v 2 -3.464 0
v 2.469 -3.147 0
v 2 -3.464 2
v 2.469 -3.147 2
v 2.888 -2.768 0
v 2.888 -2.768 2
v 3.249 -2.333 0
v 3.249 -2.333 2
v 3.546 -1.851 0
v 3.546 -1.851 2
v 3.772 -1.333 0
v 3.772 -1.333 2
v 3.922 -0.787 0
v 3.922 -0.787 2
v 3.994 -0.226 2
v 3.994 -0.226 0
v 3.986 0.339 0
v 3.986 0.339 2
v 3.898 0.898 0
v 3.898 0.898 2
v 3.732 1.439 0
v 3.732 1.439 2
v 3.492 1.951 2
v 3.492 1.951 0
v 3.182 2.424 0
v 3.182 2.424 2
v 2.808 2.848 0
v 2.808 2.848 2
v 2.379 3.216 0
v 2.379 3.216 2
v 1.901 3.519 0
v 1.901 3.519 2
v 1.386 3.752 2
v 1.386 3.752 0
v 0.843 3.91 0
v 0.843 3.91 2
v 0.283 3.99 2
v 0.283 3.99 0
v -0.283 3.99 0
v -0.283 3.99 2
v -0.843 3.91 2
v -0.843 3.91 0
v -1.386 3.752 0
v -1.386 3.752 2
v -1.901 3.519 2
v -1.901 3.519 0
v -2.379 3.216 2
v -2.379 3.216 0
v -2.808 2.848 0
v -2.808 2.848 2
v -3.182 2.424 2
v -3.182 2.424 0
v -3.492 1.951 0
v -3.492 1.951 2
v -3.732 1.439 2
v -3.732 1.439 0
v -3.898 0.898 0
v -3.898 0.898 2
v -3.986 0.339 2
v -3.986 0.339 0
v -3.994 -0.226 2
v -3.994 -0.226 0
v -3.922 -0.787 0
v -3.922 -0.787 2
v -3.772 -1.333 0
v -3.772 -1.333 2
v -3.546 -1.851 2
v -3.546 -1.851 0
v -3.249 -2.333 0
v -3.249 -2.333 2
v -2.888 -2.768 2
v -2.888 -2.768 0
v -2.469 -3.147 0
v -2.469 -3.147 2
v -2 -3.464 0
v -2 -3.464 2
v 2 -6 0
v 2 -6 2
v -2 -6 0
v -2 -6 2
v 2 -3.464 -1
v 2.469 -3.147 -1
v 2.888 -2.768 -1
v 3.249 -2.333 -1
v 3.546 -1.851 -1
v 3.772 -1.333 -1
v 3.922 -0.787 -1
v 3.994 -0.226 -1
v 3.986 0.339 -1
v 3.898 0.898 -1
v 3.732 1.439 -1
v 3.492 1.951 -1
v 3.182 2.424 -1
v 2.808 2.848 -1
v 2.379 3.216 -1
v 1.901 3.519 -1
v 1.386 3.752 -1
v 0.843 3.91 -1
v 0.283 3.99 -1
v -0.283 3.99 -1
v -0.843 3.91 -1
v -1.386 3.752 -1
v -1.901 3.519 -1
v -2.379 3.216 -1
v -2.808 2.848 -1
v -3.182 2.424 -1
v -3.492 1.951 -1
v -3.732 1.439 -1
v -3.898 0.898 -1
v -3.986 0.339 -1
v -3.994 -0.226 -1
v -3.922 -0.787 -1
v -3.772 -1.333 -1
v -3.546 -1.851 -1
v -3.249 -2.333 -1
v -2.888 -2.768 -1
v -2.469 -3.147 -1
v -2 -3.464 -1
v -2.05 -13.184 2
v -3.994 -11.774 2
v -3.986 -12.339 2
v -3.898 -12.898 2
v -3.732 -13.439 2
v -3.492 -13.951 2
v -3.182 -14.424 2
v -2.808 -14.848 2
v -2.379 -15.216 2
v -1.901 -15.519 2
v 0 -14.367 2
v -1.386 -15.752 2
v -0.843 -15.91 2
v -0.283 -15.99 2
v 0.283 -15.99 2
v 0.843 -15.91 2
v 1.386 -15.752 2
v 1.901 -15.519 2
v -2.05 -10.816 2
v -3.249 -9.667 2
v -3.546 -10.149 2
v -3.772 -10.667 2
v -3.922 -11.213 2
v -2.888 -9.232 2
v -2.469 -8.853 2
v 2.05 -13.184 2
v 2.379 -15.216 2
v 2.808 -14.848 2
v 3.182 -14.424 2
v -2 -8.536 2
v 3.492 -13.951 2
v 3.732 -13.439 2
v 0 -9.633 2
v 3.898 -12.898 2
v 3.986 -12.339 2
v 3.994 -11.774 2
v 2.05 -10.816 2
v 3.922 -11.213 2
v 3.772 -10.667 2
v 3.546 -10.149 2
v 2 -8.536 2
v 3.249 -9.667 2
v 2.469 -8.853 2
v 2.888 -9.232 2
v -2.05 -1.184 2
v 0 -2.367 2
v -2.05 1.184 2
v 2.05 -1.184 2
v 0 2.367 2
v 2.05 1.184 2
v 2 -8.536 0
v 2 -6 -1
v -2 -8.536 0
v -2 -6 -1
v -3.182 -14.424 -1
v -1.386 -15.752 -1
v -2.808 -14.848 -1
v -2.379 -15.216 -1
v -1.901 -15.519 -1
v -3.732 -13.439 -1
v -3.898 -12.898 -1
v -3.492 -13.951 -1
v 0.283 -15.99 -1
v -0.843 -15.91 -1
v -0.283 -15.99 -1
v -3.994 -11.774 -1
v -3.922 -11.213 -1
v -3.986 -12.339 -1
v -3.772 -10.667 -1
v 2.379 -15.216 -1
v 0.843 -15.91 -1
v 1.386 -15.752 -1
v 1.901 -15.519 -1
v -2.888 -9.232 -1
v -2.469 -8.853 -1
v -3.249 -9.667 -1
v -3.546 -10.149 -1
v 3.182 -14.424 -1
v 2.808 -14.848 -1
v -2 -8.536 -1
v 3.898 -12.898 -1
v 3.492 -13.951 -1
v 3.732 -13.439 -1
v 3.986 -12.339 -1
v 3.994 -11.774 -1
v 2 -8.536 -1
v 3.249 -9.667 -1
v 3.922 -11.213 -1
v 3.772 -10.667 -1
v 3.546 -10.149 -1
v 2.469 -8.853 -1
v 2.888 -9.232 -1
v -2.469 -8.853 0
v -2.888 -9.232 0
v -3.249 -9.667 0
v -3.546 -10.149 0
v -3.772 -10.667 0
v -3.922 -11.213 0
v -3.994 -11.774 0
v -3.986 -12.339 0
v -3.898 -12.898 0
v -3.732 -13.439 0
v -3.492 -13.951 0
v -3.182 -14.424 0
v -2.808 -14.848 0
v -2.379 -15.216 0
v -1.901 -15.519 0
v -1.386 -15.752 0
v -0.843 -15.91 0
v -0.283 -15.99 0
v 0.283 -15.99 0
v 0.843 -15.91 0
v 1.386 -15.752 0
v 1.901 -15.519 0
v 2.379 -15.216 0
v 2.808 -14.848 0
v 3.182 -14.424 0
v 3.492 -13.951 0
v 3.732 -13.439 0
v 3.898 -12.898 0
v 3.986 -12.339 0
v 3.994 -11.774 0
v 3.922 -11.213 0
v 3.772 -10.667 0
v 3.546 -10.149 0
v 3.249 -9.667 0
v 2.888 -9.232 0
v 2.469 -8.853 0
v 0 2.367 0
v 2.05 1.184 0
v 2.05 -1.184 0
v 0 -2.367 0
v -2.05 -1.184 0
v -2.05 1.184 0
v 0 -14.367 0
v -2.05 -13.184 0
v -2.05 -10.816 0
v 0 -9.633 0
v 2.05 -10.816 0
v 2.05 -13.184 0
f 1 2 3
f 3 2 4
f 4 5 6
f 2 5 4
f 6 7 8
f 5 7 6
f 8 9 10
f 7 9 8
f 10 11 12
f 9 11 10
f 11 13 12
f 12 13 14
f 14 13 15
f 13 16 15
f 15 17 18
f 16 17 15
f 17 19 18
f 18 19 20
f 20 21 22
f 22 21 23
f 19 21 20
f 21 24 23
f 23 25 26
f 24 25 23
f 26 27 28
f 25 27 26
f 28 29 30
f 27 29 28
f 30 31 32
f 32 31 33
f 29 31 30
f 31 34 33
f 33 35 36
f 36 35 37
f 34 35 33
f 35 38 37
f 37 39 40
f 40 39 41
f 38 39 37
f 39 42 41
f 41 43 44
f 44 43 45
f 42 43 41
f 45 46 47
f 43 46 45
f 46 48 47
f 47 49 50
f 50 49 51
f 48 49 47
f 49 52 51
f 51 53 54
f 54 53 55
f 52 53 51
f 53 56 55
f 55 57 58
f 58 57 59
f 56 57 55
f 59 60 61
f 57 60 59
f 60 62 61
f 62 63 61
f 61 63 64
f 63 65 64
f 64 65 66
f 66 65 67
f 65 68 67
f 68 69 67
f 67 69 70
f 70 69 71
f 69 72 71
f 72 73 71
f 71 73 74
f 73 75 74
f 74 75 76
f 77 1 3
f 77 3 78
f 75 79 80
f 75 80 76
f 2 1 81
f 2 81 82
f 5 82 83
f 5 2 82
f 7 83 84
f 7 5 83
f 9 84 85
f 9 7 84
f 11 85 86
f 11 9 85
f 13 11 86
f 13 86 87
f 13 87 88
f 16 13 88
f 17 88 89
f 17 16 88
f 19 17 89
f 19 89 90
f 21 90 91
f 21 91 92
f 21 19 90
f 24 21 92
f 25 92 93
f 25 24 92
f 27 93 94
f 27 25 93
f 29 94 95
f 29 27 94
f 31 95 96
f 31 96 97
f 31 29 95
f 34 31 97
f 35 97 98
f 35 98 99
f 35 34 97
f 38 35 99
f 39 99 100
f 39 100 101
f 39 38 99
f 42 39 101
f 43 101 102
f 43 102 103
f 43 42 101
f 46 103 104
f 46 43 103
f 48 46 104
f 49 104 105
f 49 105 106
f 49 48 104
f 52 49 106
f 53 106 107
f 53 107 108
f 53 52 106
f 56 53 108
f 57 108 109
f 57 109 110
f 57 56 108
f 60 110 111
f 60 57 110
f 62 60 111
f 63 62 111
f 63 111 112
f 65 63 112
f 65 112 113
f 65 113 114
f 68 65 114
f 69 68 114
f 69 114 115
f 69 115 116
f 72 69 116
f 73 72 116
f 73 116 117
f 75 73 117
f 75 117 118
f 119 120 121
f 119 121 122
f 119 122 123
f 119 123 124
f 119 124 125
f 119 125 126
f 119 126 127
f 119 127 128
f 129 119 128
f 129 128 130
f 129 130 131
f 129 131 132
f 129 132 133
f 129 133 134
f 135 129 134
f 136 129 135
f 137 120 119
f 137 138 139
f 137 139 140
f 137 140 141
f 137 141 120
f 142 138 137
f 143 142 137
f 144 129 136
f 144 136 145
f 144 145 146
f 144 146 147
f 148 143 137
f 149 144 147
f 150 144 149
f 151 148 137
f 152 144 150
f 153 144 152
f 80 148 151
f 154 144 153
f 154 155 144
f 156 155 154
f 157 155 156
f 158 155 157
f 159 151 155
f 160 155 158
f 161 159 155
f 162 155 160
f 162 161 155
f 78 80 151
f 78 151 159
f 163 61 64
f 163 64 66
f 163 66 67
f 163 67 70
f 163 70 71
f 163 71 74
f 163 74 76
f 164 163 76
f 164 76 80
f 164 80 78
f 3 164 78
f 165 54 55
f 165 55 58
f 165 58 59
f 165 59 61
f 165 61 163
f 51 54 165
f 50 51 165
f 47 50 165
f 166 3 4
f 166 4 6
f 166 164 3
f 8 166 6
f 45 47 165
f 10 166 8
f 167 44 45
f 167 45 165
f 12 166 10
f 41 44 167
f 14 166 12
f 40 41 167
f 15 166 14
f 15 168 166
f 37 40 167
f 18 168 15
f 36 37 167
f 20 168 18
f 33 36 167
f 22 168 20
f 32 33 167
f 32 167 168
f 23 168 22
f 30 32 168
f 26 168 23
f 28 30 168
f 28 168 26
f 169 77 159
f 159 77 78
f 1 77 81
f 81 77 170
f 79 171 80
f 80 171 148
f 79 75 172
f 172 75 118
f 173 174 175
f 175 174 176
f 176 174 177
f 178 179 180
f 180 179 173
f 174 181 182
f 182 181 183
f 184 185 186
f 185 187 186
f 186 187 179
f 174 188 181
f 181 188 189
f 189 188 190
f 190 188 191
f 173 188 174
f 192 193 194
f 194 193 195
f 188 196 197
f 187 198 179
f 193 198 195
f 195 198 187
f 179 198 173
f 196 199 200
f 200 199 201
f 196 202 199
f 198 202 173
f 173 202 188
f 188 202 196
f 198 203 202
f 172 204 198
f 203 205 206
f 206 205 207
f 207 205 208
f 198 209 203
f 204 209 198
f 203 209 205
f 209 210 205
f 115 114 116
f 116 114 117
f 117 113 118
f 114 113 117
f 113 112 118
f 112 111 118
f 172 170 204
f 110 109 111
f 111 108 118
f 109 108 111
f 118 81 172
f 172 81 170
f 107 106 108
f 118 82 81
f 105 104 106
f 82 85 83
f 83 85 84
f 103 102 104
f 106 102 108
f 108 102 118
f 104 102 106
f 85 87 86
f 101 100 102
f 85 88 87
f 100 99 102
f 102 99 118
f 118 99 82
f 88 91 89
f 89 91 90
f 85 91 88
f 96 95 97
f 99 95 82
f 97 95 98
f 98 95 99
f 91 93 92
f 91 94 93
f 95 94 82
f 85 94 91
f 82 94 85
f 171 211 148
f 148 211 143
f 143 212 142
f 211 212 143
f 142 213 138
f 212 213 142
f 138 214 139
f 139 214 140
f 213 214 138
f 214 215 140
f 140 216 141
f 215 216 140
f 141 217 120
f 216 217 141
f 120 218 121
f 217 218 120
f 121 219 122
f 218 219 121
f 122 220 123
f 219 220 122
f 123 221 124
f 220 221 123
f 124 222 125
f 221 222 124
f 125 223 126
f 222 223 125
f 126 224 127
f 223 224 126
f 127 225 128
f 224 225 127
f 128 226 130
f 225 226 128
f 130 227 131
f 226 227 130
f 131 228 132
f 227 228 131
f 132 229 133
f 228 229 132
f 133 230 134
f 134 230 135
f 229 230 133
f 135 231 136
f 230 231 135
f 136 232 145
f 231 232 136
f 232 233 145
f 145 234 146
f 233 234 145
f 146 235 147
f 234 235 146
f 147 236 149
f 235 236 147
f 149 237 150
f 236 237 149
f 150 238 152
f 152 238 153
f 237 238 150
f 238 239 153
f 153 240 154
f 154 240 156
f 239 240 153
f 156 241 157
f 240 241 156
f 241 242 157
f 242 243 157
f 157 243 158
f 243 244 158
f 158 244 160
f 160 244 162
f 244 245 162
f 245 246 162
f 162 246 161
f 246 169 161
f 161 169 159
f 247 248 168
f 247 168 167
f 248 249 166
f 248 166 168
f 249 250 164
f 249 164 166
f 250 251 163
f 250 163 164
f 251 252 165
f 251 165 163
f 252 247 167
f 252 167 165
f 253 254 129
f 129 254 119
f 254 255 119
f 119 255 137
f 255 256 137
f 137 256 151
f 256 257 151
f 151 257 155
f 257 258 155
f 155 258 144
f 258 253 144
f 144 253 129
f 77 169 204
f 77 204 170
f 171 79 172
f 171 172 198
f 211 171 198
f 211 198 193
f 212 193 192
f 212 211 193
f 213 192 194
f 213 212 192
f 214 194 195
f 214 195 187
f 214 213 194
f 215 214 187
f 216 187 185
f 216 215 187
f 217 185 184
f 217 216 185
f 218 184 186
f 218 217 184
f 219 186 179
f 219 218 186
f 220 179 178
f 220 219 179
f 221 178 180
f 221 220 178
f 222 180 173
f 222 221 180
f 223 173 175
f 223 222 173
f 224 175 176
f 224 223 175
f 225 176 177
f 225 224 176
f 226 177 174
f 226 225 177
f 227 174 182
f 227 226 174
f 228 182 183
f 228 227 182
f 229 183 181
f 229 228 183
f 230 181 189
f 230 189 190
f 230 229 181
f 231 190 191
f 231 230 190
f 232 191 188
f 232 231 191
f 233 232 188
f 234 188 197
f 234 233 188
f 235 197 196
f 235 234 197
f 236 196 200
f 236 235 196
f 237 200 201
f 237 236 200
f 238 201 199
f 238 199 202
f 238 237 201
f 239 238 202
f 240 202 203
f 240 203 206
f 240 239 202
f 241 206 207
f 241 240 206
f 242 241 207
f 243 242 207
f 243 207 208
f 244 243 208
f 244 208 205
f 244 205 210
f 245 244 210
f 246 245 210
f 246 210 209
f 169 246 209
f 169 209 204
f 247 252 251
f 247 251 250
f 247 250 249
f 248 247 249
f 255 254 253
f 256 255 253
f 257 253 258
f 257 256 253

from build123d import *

# Parameters (mm, degrees)
PAD_DEPTH    = 2
SKETCH002_R  = 1.3
POCKET_DEPTH = 3.415102
PAD001_DEPTH = 1


with BuildPart() as part:
    # Sketch → Pad (new body)
    with BuildSketch(Plane.XY):
        with BuildLine():
            ThreePointArc((2, -3.464102), (0, 4), (-2, -3.464102))
            Line((-2, -6), (-2, -3.464102))
            Line((-2, -6), (-2, -8.535898))
            ThreePointArc((-2, -8.535898), (0, -16), (2, -8.535898))
            Line((2, -8.535898), (2, -6))
            Line((2, -3.464102), (2, -6))
        make_face()
        Polygon((0, 2.367136), (-2.05, 1.183568), (-2.05, -1.183568), (0, -2.367136), (2.05, -1.183568), (2.05, 1.183568), align=None, mode=Mode.SUBTRACT)
        Polygon((0, -14.367136), (-2.05, -13.183568), (-2.05, -10.816432), (0, -9.632864), (2.05, -10.816432), (2.05, -13.183568), align=None, mode=Mode.SUBTRACT)
    extrude(amount=PAD_DEPTH)

    # Sketch002 → Pocket (cut, through all)
    with BuildSketch(Plane(origin=(6.221152, -10.775352, 0), x_dir=(-0.866025, -0.5, 0), z_dir=(-0.5, 0.866025, 0))):
        Circle(SKETCH002_R)
    extrude(amount=-POCKET_DEPTH, mode=Mode.SUBTRACT)

    # Sketch003 → Pad001 (join)
    with BuildSketch(Plane.XY):
        with BuildLine():
            ThreePointArc((2, -3.464102), (0, 4), (-2, -3.464102))
            Line((-2, -6), (-2, -3.464102))
            Line((-2, -6), (-2, -8.535898))
            ThreePointArc((-2, -8.535898), (0, -16), (2, -8.535898))
            Line((2, -8.535898), (2, -6))
            Line((2, -3.464102), (2, -6))
        make_face()
    extrude(amount=-PAD001_DEPTH)


solid = part.part
